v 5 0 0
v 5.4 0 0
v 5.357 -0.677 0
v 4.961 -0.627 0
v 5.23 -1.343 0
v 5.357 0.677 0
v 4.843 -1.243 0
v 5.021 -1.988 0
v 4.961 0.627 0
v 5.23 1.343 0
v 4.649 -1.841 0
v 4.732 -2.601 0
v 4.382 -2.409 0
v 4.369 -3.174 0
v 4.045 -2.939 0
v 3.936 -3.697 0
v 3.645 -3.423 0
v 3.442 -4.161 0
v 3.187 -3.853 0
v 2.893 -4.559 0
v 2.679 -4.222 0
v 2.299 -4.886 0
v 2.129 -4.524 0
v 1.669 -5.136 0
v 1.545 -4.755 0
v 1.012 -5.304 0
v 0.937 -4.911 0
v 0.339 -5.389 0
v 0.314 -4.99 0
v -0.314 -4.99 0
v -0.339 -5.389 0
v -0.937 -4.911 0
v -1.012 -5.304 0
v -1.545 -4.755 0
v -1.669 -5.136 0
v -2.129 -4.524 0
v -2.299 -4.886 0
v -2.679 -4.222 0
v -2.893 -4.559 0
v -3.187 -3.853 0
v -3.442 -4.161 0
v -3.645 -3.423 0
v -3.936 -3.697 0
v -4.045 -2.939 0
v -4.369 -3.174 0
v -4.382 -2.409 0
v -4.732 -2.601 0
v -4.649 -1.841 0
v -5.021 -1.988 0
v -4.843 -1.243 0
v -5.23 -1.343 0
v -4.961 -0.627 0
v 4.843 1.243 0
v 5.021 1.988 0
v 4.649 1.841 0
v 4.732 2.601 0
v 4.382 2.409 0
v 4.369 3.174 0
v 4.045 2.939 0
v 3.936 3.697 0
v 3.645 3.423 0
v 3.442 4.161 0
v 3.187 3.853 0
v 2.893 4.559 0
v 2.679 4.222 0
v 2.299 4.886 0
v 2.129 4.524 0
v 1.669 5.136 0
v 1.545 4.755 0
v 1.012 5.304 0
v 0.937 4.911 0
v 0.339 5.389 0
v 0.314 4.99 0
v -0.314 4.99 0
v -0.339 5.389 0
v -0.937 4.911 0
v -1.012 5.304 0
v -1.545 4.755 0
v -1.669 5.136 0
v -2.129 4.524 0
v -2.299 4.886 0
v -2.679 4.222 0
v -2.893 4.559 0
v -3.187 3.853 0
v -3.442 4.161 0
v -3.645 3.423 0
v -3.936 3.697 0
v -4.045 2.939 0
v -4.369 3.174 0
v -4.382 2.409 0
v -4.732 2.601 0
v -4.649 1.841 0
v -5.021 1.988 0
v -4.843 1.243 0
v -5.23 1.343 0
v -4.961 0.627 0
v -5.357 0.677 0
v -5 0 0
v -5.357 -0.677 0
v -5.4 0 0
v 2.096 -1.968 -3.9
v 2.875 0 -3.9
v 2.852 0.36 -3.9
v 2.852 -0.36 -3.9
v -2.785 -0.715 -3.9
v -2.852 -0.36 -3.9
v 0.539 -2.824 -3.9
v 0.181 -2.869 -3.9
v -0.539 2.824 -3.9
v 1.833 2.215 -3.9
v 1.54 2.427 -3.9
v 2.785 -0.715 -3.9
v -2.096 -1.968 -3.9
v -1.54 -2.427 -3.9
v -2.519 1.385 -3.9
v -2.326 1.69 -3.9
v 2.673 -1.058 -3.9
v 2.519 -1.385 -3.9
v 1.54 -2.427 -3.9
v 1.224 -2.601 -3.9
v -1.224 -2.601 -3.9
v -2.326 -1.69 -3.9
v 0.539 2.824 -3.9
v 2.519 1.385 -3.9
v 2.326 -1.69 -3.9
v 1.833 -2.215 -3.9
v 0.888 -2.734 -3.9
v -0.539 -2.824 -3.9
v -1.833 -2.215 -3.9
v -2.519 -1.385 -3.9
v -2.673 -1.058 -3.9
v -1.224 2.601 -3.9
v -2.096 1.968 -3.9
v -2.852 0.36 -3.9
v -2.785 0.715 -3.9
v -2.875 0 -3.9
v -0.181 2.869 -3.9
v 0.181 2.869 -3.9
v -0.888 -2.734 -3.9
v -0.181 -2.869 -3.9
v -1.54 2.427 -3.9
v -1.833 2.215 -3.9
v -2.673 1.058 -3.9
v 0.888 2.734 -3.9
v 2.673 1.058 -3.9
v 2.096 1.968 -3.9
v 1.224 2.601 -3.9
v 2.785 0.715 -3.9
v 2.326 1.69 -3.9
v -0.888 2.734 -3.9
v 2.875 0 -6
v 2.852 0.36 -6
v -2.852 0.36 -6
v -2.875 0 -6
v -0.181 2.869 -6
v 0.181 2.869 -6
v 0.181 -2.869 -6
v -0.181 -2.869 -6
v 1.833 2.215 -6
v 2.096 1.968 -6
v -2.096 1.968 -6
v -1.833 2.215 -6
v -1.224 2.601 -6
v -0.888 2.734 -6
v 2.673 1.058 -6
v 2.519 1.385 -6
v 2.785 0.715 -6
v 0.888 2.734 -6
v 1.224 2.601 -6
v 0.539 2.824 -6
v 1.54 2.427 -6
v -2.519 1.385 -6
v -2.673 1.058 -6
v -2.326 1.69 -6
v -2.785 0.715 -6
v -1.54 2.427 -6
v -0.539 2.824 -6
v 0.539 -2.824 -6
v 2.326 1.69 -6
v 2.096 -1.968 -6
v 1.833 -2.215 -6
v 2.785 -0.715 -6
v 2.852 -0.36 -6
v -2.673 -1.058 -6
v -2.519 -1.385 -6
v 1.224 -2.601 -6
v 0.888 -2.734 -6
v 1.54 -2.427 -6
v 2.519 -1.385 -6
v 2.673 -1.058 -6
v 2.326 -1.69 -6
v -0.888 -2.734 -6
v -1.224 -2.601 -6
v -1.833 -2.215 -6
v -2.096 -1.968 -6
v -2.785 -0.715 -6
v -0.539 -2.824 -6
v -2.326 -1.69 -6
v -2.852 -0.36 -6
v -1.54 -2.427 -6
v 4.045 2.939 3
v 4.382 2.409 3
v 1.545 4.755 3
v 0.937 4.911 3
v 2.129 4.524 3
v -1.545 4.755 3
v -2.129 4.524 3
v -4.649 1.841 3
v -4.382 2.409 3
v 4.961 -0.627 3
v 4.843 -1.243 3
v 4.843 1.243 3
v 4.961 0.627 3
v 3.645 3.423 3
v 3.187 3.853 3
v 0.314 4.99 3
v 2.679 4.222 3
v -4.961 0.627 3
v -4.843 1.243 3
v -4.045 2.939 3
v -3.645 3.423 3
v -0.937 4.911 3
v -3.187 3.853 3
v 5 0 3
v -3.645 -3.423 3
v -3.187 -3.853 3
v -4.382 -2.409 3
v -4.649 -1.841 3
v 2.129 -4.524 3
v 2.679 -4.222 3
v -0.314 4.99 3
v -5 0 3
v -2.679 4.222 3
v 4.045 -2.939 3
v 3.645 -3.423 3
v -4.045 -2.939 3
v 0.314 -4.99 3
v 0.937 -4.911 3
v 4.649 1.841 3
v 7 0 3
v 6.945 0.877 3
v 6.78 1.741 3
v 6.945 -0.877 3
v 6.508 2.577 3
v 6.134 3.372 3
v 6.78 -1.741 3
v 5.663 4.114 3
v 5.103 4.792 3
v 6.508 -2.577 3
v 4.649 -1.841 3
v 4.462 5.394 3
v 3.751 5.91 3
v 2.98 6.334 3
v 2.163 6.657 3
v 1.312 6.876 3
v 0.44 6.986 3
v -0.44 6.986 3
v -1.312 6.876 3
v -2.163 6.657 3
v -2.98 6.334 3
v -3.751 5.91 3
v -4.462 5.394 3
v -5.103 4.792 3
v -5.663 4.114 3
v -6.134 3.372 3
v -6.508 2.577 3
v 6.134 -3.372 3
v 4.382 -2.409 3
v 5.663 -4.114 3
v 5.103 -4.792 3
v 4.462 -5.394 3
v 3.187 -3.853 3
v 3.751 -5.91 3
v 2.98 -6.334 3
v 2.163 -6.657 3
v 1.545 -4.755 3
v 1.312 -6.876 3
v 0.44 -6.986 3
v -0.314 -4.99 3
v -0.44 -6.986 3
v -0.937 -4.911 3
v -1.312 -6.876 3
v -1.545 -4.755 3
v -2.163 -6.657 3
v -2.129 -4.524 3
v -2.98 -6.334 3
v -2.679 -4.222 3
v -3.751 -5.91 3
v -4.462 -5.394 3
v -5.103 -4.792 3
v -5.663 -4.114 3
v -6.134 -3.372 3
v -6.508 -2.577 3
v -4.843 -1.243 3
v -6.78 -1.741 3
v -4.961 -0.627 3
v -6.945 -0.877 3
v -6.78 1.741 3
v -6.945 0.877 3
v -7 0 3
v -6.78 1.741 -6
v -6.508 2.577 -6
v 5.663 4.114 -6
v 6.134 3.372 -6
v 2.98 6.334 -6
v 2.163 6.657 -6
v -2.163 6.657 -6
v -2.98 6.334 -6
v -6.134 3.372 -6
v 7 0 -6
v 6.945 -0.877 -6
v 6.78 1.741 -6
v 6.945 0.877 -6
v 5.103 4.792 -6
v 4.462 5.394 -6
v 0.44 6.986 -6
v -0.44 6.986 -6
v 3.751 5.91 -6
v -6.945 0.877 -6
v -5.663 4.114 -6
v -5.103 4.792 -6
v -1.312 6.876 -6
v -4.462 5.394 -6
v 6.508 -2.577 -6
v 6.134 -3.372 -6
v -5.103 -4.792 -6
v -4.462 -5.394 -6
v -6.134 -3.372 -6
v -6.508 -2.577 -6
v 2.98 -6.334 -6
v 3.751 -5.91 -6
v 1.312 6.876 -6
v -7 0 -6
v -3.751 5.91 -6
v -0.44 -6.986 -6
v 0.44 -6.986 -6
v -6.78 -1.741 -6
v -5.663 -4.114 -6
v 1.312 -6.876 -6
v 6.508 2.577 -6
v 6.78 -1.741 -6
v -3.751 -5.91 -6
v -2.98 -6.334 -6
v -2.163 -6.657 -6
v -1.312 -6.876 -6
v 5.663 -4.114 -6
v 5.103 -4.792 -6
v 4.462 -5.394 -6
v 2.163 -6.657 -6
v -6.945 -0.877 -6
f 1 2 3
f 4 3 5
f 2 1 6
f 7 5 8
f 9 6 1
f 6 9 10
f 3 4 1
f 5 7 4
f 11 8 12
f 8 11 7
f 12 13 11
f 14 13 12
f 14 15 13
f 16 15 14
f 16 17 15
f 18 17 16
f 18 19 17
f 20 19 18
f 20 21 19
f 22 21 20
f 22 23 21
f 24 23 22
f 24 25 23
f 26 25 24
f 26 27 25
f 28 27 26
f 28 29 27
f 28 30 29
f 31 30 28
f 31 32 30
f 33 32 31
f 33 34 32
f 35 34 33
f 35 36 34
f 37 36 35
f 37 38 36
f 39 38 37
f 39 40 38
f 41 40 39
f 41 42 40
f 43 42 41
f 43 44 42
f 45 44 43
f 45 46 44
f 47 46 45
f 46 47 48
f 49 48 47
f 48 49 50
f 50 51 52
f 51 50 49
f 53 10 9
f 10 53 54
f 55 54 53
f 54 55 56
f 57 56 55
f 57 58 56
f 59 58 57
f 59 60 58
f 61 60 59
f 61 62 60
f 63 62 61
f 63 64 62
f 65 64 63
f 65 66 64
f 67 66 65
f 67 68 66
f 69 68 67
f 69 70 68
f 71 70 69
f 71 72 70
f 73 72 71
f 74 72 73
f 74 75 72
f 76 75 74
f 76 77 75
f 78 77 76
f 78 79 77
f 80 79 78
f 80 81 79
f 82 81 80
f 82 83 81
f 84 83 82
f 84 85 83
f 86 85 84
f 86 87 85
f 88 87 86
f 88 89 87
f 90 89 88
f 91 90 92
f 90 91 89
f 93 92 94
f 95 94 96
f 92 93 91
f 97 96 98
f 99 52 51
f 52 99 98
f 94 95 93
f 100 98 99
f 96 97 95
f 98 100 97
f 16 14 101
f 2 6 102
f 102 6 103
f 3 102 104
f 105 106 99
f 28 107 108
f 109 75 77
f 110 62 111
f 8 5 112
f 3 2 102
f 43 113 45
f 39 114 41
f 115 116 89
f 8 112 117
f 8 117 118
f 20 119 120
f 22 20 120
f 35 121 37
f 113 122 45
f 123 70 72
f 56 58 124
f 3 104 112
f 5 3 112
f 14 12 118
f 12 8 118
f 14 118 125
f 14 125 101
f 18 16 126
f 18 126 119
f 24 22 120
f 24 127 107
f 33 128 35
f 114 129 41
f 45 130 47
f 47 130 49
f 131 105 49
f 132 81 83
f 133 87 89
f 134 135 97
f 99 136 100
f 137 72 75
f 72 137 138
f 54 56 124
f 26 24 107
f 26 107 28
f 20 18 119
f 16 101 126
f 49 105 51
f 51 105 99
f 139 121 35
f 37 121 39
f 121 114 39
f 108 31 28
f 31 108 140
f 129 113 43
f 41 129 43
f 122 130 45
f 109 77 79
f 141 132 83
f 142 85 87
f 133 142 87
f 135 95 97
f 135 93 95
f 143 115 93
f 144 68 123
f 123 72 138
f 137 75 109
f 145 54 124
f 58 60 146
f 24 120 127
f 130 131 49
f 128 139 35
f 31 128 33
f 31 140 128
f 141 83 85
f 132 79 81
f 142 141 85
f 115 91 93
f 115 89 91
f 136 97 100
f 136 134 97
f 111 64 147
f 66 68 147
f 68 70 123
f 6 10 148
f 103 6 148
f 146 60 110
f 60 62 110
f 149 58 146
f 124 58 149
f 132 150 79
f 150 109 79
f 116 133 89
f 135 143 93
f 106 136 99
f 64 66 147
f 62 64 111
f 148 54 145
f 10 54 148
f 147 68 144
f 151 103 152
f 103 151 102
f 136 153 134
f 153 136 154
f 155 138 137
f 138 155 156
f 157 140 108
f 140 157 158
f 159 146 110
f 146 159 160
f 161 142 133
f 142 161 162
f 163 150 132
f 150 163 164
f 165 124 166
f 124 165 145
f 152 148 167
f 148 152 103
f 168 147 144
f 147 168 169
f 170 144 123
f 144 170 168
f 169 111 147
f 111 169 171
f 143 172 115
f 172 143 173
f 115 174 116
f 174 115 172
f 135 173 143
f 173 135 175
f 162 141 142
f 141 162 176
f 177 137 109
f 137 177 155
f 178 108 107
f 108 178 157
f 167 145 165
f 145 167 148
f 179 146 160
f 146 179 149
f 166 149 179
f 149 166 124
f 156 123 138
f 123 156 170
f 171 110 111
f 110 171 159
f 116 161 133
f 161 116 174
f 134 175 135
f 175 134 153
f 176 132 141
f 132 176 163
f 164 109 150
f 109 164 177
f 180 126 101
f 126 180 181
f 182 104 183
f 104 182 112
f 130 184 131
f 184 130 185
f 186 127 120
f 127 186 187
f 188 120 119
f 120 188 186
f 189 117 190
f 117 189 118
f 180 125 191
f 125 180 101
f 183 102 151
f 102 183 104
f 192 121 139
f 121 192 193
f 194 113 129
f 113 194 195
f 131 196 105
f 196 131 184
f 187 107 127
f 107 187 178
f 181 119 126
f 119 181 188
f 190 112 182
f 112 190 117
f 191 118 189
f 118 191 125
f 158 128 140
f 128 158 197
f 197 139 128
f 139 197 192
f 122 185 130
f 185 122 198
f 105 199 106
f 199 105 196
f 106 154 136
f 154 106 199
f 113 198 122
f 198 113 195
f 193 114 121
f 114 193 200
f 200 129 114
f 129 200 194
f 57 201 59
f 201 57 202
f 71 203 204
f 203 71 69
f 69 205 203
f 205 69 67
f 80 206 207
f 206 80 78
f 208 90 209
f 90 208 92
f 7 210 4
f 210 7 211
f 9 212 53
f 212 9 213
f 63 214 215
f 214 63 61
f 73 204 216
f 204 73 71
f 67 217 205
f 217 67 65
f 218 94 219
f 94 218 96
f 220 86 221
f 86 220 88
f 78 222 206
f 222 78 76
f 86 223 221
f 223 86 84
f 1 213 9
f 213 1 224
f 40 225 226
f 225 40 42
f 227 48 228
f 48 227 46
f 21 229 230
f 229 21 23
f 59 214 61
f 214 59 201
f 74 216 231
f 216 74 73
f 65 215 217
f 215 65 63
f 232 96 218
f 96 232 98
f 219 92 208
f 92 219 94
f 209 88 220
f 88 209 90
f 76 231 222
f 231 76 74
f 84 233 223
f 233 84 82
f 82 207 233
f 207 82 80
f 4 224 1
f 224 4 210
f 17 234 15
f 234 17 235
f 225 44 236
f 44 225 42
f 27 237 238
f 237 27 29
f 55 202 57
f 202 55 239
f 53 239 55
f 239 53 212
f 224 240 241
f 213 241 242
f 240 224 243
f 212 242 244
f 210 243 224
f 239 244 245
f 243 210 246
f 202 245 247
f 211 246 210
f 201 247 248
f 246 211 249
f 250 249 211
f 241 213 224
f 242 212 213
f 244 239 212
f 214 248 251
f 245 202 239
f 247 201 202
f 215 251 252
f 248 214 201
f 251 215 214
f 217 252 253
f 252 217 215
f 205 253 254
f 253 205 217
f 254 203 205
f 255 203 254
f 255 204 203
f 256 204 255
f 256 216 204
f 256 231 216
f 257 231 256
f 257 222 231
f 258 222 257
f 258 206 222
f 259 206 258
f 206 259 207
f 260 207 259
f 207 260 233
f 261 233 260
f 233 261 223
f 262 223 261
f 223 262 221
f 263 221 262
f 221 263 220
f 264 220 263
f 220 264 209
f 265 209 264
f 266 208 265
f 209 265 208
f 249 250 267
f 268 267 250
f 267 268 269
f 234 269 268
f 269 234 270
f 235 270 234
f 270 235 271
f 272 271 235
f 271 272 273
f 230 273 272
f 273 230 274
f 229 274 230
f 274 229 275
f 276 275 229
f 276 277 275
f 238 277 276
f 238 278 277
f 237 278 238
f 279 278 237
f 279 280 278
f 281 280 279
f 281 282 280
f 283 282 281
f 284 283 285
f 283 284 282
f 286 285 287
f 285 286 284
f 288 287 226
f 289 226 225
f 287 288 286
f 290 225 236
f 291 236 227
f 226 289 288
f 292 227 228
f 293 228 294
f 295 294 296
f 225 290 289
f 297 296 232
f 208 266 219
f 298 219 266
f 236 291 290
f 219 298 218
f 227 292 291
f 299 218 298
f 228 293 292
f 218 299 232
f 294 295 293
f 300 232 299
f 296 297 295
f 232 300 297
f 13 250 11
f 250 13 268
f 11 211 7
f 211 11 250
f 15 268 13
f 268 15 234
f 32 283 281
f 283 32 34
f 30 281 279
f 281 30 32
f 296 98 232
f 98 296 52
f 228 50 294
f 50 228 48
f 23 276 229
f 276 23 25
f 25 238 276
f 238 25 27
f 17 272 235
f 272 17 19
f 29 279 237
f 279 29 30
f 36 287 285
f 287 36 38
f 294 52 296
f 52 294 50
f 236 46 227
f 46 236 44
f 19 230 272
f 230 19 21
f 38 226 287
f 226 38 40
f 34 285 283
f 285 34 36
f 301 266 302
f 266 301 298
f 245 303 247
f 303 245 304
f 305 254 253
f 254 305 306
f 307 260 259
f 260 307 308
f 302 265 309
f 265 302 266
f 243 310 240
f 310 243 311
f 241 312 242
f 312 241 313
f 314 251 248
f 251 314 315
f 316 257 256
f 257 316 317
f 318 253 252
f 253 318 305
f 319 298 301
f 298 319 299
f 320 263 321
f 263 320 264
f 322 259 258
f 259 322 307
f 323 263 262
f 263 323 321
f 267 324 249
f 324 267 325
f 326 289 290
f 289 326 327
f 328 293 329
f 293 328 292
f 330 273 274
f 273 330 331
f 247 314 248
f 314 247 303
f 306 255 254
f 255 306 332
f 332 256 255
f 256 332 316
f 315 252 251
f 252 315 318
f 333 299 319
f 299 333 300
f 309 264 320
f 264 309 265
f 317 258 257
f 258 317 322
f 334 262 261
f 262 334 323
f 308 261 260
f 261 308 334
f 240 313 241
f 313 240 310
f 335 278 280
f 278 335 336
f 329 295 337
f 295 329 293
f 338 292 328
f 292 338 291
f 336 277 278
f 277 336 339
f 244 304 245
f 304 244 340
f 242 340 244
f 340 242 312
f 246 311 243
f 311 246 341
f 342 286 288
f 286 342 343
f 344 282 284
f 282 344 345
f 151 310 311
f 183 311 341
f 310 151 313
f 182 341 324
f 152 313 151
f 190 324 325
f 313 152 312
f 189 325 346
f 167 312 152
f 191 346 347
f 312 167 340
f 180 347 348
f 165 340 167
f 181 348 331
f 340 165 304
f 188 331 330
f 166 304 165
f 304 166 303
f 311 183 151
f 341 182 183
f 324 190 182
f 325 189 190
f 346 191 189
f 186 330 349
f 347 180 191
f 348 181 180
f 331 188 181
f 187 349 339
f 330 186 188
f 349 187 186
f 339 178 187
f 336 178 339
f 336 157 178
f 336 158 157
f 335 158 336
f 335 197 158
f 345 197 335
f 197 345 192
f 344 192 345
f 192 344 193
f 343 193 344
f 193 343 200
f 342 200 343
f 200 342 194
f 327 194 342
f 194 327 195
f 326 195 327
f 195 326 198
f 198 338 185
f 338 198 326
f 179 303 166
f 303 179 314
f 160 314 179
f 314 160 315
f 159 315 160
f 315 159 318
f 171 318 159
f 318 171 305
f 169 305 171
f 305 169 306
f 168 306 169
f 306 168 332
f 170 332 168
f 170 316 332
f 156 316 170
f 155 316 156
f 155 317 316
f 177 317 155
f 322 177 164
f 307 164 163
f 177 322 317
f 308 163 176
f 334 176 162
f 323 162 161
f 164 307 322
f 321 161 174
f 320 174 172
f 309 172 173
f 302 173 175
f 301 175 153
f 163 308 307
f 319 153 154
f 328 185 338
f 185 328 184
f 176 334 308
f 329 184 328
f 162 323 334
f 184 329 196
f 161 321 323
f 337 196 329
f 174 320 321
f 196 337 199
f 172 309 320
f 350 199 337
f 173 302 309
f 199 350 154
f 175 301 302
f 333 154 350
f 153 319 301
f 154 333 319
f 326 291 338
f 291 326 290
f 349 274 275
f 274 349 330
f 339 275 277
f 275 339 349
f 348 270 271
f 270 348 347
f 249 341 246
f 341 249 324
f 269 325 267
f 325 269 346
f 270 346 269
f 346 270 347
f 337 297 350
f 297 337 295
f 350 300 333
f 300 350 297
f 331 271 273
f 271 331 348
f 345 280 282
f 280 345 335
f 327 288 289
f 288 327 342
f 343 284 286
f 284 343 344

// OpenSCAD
$fn = 50;


difference() {
	union() {
		translate(v = [0, 0, -6.0000000000]) {
			cylinder(h = 9, r = 7.0000000000);
		}
	}
	union() {
		translate(v = [0, 0, 0]) {
			rotate(a = [0, 0, 0]) {
				difference() {
					union() {
						translate(v = [0, 0, -9.0000000000]) {
							cylinder(h = 9, r = 2.6000000000);
						}
						translate(v = [0, 0, -3.9000000000]) {
							cylinder(h = 3.9000000000, r1 = 2.8750000000, r2 = 5.4000000000);
						}
						translate(v = [0, 0, -9.0000000000]) {
							cylinder(h = 9, r = 2.8750000000);
						}
						translate(v = [0, 0, -9.0000000000]) {
							cylinder(h = 9, r = 2.6000000000);
						}
					}
					union();
				}
			}
		}
		#cylinder(h = 3, r = 5.0000000000);
	}
}
